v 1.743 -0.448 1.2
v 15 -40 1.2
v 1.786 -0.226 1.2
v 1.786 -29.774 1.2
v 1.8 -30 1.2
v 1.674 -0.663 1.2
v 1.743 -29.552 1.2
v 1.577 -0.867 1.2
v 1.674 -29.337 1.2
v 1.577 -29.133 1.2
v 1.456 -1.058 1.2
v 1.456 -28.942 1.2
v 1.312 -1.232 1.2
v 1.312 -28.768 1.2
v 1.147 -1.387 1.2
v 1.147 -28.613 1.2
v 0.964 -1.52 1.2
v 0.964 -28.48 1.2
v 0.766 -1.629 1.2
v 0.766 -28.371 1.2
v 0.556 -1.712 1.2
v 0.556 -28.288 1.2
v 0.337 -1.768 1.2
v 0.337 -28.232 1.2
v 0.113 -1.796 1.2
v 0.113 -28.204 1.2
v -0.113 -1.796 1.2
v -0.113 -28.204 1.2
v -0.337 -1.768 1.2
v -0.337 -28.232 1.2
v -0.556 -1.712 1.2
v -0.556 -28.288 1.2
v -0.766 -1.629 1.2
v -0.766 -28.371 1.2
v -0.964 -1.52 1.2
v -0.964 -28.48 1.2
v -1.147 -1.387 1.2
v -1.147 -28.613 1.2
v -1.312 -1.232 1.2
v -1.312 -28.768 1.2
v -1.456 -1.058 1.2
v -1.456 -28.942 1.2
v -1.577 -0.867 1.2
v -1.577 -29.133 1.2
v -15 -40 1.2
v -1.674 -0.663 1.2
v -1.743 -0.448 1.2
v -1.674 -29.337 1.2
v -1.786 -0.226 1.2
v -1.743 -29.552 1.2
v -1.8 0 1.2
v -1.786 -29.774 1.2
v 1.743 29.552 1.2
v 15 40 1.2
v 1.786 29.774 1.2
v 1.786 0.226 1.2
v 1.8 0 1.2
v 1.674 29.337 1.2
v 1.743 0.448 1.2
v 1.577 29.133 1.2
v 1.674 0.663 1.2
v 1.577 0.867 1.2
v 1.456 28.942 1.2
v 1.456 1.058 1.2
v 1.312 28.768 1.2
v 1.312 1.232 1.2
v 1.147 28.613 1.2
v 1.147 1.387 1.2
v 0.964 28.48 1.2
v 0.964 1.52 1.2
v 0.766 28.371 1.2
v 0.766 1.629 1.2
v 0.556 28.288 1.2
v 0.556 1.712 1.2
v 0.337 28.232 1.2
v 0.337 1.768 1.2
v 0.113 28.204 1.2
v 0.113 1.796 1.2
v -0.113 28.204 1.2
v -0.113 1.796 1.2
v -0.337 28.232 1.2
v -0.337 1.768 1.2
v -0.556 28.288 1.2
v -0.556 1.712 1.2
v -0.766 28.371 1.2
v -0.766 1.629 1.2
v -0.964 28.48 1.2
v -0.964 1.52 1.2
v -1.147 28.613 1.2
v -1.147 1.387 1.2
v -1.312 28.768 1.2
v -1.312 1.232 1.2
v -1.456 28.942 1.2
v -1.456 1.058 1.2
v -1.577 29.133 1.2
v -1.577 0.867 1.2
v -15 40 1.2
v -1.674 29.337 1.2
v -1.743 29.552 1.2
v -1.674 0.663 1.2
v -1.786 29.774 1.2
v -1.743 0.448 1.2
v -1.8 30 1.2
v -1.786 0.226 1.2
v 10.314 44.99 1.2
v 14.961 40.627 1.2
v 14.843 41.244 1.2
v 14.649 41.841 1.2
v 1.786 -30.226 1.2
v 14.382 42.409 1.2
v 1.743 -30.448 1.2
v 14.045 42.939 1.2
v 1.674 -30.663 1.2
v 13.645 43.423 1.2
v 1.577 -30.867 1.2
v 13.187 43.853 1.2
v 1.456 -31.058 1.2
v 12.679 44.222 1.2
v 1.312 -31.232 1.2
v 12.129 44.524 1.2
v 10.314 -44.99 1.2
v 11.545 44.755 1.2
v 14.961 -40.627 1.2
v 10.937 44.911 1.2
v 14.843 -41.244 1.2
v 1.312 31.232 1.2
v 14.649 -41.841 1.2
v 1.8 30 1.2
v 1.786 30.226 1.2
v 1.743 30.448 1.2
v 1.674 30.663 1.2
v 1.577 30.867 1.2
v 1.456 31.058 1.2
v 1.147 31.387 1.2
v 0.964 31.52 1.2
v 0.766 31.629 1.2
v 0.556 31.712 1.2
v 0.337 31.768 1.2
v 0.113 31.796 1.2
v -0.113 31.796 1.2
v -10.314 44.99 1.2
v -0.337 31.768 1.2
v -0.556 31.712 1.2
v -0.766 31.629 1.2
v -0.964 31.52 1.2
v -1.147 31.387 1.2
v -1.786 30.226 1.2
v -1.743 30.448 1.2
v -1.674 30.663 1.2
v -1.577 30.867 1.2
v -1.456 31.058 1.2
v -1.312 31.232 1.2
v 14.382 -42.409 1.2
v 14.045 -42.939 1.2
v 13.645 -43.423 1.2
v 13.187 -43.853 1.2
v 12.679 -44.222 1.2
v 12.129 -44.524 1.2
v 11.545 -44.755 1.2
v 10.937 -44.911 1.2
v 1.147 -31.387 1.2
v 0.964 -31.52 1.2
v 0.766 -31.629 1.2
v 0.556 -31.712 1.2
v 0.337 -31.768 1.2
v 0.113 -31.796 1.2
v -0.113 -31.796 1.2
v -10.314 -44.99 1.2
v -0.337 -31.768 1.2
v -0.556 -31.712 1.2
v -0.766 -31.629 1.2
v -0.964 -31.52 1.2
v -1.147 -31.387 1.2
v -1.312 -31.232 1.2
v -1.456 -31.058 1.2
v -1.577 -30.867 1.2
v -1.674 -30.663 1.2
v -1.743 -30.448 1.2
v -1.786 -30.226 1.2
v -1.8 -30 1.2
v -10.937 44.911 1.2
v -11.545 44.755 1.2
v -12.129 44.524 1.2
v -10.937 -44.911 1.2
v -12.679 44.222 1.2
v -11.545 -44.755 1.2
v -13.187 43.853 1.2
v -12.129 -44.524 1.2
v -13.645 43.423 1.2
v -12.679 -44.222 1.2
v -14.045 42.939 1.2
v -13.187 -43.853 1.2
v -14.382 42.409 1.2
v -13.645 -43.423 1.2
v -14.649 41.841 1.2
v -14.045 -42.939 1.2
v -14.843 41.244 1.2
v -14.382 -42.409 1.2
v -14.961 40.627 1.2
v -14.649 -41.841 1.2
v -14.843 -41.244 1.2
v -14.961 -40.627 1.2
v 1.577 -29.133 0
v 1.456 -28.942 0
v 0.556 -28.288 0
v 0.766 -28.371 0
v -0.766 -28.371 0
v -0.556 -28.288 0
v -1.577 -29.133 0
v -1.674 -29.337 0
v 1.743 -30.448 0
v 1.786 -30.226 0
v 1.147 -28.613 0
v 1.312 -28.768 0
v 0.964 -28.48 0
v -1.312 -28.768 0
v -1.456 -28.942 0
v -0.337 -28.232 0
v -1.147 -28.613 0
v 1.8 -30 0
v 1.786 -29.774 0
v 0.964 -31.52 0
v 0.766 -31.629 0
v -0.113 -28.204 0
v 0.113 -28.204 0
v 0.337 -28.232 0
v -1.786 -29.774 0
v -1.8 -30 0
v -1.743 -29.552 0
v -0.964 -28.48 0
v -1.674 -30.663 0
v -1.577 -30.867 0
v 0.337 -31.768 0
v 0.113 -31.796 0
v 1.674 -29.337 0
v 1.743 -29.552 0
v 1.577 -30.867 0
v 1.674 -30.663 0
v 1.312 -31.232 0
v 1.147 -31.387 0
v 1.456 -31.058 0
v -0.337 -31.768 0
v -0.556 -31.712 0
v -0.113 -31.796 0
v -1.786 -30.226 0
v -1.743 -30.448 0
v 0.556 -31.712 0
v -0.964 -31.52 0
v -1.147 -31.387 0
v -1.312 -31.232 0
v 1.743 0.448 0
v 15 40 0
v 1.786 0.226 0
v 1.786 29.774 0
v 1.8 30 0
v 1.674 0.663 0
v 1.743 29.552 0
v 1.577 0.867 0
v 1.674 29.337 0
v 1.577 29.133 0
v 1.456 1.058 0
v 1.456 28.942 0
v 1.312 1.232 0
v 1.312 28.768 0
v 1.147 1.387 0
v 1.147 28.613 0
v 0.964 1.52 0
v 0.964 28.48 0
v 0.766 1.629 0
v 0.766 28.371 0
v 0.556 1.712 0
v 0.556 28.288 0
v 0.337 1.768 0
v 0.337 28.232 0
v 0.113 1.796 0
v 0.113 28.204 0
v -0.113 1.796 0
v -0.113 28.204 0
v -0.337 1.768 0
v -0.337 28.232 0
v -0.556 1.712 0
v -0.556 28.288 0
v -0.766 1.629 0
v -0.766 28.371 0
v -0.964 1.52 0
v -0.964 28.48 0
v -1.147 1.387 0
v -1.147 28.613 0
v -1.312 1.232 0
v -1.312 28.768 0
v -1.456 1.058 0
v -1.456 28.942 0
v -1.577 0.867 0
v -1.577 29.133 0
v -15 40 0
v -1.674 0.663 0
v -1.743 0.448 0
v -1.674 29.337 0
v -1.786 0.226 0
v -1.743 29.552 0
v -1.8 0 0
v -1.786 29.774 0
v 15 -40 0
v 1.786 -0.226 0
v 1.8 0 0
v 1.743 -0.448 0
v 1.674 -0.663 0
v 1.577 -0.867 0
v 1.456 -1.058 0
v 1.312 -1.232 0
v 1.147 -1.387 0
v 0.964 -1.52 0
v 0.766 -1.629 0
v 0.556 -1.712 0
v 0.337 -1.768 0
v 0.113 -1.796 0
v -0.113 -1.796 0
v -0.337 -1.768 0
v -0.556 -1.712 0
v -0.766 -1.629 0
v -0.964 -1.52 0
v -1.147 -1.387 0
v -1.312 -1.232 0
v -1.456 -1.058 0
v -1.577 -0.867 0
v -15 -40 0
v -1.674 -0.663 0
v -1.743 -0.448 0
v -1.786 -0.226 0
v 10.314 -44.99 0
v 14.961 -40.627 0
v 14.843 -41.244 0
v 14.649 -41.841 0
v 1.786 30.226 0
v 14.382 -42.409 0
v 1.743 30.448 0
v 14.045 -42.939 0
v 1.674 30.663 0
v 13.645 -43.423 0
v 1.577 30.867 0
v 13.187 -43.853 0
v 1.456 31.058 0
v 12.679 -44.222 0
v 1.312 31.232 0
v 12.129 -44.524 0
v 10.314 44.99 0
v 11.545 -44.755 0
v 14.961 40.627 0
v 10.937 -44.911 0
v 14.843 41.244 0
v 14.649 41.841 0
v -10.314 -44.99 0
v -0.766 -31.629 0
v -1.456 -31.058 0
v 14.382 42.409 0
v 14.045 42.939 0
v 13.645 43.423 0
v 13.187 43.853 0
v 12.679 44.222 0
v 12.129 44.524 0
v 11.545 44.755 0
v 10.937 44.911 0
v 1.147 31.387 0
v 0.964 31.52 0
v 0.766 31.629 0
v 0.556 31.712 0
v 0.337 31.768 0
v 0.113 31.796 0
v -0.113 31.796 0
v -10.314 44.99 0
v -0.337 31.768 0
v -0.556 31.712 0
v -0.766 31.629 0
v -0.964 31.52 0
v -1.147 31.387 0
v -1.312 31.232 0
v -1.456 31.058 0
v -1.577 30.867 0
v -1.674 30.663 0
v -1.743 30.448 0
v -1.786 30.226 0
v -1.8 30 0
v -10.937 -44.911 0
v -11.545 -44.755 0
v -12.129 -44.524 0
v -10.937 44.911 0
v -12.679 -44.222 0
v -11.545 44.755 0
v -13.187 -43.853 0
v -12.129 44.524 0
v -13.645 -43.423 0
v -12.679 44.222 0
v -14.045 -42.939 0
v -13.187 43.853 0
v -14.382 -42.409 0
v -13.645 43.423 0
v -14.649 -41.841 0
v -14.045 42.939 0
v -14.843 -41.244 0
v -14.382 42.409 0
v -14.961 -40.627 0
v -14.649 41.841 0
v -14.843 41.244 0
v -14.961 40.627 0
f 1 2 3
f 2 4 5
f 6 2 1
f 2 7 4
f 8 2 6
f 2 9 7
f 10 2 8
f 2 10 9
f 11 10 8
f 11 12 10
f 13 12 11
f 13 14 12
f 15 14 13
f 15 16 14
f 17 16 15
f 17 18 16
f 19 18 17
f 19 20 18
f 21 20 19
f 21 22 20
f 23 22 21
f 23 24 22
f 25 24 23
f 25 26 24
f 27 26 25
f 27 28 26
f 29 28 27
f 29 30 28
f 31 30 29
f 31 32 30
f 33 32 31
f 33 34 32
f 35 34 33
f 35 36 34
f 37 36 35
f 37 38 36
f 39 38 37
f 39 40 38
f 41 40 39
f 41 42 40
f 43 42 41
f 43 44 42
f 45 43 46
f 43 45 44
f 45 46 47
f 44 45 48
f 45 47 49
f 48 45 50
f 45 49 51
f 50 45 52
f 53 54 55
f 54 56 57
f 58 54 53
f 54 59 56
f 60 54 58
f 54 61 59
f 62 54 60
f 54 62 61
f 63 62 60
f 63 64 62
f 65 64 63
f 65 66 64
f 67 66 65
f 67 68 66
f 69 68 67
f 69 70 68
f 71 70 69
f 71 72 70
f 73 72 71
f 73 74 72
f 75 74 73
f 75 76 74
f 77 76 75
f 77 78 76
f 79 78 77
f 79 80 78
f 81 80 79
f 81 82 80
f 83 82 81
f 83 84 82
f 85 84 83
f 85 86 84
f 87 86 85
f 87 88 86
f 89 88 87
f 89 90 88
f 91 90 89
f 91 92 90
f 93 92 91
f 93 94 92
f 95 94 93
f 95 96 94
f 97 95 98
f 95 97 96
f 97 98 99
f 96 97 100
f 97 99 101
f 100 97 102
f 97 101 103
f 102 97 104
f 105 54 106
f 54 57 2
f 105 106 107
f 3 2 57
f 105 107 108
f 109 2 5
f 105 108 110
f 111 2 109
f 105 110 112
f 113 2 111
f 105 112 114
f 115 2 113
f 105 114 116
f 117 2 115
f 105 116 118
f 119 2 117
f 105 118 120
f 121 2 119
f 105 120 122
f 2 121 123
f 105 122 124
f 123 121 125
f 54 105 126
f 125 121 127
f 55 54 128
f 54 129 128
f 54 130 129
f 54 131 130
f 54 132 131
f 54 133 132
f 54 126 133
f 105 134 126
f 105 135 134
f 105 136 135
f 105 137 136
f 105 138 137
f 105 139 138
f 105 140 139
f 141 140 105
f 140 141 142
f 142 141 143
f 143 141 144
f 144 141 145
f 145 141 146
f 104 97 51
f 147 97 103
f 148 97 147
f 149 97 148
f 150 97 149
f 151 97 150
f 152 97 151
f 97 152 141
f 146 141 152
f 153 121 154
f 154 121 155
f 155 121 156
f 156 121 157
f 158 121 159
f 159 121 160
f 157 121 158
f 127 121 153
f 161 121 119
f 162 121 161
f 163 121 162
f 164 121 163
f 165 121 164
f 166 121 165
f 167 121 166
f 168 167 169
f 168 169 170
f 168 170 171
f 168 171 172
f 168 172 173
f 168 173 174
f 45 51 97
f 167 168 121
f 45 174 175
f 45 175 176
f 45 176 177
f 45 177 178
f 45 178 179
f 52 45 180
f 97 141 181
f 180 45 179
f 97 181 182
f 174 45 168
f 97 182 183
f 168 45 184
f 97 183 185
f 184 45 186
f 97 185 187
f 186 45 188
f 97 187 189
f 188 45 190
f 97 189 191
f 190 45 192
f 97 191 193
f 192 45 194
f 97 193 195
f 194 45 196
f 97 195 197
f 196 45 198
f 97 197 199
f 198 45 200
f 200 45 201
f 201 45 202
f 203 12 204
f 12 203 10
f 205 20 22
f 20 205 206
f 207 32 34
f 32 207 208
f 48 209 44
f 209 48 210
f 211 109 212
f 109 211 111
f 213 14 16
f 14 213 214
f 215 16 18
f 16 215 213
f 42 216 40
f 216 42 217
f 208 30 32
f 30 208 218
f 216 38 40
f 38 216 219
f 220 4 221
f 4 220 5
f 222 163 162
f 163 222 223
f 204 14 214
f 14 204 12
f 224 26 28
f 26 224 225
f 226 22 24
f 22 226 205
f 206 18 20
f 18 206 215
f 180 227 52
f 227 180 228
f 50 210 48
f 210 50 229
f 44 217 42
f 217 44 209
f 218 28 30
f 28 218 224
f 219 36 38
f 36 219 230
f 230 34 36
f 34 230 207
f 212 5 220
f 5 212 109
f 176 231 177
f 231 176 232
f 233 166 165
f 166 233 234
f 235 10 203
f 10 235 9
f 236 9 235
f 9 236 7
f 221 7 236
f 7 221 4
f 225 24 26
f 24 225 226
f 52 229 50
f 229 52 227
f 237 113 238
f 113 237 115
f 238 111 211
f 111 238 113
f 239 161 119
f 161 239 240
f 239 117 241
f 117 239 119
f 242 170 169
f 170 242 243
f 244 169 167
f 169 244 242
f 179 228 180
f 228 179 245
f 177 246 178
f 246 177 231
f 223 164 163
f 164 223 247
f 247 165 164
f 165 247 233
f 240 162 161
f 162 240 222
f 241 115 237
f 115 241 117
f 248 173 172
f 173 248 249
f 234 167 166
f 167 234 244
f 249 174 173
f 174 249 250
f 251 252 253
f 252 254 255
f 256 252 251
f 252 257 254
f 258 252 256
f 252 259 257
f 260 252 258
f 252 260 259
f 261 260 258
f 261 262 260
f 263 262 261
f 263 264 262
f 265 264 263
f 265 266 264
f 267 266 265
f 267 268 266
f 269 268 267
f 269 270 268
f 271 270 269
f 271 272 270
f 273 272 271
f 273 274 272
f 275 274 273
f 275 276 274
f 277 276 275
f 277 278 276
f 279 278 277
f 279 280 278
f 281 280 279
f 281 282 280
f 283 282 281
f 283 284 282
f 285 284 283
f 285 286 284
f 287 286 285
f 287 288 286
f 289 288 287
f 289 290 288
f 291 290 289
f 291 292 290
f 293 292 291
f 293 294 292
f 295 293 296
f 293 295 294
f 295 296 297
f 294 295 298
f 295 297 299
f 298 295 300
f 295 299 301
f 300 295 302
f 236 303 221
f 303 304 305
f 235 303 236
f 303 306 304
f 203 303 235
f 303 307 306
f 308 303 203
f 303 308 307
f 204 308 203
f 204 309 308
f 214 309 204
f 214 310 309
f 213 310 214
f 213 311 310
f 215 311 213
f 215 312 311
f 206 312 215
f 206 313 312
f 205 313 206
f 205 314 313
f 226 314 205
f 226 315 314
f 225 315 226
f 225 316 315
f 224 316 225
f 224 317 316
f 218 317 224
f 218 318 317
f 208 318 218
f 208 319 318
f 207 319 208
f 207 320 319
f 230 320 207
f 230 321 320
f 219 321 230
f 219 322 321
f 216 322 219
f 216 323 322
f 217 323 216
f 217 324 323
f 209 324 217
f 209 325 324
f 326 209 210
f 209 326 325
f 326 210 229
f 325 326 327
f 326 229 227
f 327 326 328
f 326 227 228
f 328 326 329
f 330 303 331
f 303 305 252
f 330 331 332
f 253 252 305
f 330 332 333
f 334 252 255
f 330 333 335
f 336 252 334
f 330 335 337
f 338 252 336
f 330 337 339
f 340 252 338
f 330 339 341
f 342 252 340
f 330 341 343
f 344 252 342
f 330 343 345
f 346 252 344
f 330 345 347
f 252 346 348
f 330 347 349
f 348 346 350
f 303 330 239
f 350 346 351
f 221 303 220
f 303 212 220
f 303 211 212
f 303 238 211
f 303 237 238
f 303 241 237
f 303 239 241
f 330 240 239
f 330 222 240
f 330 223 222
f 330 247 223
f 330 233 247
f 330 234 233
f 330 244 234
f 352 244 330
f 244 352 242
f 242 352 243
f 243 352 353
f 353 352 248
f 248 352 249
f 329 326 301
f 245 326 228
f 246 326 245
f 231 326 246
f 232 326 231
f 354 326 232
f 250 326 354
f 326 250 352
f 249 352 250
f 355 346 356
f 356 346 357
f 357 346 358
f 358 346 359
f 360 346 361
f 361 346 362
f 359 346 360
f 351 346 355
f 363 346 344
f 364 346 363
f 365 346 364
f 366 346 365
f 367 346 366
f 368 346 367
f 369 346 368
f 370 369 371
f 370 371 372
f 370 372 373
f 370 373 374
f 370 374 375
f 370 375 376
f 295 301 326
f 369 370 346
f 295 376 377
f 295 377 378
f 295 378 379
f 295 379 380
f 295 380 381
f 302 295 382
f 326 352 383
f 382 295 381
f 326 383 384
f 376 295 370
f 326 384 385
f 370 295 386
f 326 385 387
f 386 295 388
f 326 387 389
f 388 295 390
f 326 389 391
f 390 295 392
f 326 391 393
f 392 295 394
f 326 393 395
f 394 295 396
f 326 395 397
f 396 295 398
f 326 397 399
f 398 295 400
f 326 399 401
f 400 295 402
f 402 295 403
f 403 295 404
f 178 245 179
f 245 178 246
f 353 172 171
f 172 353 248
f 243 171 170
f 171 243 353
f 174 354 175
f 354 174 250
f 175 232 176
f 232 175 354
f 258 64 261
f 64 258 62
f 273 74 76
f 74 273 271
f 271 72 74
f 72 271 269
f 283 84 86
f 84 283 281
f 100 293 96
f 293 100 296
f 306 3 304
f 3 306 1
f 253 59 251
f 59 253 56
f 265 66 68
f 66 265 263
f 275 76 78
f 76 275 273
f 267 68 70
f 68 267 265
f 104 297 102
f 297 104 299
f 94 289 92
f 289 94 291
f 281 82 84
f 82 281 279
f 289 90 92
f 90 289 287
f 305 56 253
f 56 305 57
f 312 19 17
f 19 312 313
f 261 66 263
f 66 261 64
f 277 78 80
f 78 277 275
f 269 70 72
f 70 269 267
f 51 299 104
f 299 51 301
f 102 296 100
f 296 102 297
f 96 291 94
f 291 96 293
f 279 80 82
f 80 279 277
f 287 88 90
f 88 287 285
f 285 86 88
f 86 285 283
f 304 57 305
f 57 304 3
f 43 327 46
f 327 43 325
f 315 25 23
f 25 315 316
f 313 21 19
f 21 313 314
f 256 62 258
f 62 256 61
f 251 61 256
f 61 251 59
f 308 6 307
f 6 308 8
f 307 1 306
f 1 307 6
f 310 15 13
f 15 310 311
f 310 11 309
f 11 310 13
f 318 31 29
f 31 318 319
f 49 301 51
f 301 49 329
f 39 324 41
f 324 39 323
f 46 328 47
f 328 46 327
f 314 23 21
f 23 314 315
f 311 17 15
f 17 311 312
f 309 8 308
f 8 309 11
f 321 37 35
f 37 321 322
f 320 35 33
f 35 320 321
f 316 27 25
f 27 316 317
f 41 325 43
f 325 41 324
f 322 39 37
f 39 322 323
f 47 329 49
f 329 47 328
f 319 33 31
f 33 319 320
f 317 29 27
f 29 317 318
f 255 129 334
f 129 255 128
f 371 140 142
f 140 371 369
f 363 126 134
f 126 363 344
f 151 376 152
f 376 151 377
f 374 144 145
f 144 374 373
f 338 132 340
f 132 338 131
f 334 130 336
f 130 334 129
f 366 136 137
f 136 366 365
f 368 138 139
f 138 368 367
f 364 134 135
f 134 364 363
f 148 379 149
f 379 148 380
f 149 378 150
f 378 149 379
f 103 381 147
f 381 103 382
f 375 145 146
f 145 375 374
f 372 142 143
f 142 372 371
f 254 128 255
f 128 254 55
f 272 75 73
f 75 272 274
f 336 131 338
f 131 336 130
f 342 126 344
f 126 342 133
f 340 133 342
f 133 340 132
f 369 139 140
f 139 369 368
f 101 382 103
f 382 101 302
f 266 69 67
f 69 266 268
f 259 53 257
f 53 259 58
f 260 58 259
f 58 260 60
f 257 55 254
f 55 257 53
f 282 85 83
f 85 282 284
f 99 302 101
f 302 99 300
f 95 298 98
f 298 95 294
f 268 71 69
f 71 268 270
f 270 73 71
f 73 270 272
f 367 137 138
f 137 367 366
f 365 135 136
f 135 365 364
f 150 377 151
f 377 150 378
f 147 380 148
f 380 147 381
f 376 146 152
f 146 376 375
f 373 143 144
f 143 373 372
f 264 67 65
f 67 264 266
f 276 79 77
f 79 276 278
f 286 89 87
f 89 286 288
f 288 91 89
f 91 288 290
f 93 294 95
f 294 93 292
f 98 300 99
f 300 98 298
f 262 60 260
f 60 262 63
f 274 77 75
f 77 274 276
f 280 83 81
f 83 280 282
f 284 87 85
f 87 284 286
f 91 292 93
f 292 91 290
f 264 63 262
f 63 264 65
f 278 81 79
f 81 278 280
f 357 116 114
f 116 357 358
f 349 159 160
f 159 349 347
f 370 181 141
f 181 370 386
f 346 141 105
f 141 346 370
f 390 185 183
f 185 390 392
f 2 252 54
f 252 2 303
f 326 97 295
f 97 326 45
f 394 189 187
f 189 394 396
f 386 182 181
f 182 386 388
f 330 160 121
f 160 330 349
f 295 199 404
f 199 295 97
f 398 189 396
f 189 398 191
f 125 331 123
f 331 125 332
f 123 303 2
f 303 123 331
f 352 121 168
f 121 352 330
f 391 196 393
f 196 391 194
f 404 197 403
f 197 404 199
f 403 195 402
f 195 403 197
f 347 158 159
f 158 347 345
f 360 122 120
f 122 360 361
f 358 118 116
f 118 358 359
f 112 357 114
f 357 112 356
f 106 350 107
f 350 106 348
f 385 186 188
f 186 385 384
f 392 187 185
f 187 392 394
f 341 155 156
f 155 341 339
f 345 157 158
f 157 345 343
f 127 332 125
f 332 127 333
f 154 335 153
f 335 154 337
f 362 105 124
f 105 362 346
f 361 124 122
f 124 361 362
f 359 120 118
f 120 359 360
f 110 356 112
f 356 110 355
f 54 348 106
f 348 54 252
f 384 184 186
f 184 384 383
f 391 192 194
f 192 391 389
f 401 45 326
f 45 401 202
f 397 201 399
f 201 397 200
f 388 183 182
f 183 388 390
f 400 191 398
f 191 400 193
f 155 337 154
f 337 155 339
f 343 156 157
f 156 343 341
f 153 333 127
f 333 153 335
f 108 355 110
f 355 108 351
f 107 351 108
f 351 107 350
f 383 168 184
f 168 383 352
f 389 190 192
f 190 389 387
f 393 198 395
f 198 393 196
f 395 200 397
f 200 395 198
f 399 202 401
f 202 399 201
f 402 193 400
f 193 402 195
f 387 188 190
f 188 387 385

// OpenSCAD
$fn = 50;


difference() {
	union() {
		hull() {
			translate(v = [-10.0000000000, 40.0000000000, 0]) {
				cylinder(h = 9, r = 5);
			}
			translate(v = [10.0000000000, 40.0000000000, 0]) {
				cylinder(h = 9, r = 5);
			}
			translate(v = [-10.0000000000, -40.0000000000, 0]) {
				cylinder(h = 9, r = 5);
			}
			translate(v = [10.0000000000, -40.0000000000, 0]) {
				cylinder(h = 9, r = 5);
			}
		}
	}
	union() {
		translate(v = [0, 0, 1.2000000000]) {
			hull() {
				translate(v = [-10.0000000000, 40.0000000000, 0]) {
					cylinder(h = 7.8000000000, r = 3.8000000000);
				}
				translate(v = [10.0000000000, 40.0000000000, 0]) {
					cylinder(h = 7.8000000000, r = 3.8000000000);
				}
				translate(v = [-10.0000000000, -40.0000000000, 0]) {
					cylinder(h = 7.8000000000, r = 3.8000000000);
				}
				translate(v = [10.0000000000, -40.0000000000, 0]) {
					cylinder(h = 7.8000000000, r = 3.8000000000);
				}
			}
		}
		#translate(v = [0.0000000000, -30.0000000000, 0]) {
			cylinder(h = 1.2000000000, r = 1.8000000000);
		}
		#cylinder(h = 1.2000000000, r = 1.8000000000);
		#translate(v = [0.0000000000, 30.0000000000, 0]) {
			cylinder(h = 1.2000000000, r = 1.8000000000);
		}
		translate(v = [-250.0000000000, -250.0000000000, 1.2000000000]) {
			cube(size = [500, 500, 500]);
		}
		translate(v = [-250.0000000000, -250.0000000000, 1.2000000000]) {
			cube(size = [500, 500, 500]);
		}
		translate(v = [-250.0000000000, -250.0000000000, 1.2000000000]) {
			cube(size = [500, 500, 500]);
		}
	}
}
